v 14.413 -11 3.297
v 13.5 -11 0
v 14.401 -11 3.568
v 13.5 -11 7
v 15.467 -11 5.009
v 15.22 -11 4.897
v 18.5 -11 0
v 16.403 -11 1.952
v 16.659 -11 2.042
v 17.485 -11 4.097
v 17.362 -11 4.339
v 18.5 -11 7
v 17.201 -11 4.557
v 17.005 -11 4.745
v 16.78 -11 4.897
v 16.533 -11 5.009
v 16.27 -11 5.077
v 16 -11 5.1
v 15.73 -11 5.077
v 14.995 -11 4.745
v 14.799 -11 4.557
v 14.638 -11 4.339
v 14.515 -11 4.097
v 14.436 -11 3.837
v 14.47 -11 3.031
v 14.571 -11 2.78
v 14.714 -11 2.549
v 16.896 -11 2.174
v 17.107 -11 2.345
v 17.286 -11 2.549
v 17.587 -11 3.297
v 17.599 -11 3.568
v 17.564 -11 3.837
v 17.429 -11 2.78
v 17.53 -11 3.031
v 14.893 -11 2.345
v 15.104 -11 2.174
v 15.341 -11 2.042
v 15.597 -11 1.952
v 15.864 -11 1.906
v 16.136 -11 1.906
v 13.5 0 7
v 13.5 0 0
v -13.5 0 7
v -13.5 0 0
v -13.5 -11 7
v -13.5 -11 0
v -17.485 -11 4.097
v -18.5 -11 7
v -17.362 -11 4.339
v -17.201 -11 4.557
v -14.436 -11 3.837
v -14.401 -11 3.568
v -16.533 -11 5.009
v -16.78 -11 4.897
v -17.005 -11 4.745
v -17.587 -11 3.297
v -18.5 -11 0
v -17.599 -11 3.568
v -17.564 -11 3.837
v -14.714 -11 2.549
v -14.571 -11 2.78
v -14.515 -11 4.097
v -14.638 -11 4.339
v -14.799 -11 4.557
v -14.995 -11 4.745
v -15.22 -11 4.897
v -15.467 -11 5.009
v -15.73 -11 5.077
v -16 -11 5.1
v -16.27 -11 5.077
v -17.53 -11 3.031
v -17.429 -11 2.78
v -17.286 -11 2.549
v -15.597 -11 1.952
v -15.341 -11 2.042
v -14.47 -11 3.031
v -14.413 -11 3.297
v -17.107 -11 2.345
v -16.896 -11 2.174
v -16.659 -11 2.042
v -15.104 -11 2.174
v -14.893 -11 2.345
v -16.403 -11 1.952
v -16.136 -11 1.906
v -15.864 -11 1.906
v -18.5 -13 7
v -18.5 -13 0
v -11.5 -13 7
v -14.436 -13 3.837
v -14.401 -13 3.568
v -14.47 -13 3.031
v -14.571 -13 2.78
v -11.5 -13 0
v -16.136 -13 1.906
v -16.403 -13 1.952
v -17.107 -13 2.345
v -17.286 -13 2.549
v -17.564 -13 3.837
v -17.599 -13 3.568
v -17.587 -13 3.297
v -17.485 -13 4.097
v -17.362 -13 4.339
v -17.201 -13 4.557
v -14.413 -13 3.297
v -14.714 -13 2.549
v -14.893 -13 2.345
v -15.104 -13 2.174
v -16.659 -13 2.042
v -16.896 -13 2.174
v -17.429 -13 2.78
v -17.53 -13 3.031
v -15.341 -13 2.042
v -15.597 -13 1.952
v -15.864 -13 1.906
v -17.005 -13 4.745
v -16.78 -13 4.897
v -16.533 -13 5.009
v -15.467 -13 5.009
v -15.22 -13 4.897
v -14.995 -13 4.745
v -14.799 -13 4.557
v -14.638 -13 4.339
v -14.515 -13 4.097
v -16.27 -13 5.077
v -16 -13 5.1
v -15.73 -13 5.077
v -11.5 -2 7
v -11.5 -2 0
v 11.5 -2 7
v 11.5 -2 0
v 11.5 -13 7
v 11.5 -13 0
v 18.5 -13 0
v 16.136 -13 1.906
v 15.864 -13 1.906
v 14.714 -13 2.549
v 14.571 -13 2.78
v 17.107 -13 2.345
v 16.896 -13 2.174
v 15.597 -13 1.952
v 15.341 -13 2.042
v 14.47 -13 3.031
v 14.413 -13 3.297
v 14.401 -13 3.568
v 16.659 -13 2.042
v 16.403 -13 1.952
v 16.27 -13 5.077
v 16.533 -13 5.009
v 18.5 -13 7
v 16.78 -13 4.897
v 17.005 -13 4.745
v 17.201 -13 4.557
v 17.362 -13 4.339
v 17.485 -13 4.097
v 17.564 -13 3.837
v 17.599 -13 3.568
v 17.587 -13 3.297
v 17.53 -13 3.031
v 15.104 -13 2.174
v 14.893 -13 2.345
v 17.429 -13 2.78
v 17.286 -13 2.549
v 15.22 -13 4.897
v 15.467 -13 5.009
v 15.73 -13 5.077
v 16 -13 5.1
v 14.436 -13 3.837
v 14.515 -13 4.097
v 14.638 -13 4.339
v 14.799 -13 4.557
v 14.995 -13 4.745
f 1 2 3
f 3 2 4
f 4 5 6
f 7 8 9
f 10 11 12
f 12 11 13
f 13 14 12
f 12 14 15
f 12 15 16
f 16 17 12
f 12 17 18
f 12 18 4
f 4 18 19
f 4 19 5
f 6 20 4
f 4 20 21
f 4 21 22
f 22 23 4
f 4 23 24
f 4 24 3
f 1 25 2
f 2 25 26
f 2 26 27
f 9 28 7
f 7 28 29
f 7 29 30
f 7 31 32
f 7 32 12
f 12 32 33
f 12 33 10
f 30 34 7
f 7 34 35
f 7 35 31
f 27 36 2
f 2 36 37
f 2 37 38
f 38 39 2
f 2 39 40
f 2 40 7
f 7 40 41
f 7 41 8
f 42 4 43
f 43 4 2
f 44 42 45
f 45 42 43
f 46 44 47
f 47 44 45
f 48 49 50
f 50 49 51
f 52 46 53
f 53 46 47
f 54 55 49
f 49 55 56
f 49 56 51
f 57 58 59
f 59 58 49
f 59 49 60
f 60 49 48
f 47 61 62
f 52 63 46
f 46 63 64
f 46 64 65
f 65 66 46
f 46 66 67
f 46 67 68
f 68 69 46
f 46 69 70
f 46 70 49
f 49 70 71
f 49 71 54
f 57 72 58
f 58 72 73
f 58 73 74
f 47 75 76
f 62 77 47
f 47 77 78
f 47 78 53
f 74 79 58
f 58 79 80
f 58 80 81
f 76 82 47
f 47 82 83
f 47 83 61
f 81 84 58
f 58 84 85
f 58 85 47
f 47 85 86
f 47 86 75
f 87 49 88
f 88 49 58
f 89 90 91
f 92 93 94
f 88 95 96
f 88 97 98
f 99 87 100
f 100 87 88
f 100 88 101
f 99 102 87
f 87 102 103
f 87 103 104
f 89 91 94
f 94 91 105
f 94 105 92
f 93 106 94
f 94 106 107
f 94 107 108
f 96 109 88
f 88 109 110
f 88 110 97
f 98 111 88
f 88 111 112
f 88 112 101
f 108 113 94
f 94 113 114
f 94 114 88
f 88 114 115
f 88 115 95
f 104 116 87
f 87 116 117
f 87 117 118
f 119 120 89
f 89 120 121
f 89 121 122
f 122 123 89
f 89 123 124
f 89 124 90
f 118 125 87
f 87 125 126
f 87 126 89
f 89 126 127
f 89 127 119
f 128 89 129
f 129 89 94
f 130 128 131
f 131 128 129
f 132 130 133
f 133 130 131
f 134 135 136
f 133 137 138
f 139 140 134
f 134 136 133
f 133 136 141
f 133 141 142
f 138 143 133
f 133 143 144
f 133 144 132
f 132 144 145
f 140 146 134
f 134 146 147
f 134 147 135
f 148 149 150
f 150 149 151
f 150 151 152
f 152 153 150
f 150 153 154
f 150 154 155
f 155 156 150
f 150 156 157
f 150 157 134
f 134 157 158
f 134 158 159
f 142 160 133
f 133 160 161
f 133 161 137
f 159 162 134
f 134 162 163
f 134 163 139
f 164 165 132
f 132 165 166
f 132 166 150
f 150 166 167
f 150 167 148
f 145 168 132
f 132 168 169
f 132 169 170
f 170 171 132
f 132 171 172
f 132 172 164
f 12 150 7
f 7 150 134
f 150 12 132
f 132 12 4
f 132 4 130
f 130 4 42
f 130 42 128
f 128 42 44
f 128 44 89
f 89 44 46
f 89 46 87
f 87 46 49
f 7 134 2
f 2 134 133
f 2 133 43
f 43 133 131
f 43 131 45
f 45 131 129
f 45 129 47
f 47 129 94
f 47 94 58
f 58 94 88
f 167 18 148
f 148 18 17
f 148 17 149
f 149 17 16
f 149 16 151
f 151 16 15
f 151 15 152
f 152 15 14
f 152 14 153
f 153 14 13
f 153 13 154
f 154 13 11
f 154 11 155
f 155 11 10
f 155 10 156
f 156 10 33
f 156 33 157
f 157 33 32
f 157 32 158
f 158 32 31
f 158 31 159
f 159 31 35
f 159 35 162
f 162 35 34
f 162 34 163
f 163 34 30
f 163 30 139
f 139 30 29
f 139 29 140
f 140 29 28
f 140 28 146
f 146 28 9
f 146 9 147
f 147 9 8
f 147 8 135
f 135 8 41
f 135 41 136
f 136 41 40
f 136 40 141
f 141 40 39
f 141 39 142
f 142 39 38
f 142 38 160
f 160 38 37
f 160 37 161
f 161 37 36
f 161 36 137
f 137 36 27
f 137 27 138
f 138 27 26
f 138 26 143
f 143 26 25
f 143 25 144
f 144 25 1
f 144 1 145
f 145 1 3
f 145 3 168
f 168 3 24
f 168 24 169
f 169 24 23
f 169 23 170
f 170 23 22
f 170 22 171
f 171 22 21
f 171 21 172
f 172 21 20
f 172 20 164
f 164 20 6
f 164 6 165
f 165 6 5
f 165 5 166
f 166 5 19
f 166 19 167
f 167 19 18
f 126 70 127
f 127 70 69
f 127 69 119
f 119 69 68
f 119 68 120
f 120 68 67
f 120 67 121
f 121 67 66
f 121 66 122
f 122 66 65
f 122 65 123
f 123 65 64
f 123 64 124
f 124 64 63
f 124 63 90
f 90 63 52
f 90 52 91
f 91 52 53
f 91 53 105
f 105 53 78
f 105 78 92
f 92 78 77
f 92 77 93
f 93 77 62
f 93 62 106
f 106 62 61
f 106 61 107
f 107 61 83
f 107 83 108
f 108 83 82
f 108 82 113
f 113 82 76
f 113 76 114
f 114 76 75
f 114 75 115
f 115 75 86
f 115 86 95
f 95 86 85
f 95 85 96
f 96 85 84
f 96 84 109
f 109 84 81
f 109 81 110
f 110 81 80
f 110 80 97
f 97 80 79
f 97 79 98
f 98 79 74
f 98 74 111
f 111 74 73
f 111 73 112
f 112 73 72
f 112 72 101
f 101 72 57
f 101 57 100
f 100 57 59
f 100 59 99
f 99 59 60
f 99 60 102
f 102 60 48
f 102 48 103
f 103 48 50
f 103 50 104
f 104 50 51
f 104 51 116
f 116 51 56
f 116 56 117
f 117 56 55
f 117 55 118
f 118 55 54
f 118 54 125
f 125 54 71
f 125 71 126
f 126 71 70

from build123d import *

# Parameters (mm, degrees)
EXTRUDE_1_DEPTH     = 7
SKETCH_2_R          = 1.6
CUT_EXTRUDE_1_DEPTH = 2


with BuildPart() as part:
    # 草圖1 → 填料-伸長1 (new body)
    with BuildSketch(Plane.XY):
        Polygon((-13.5, 0), (13.5, 0), (13.5, -11), (18.5, -11), (18.5, -13), (11.5, -13), (11.5, -2), (-11.5, -2), (-11.5, -13), (-18.5, -13), (-18.5, -11), (-13.5, -11), align=None)
    extrude(amount=EXTRUDE_1_DEPTH)

    # 草圖2 → 除料-伸長1 (cut)
    with BuildSketch(Plane(origin=(0, -11, 0), x_dir=(1, 0, 0), z_dir=(0, 1, 0))):
        with Locations(Location((16, -3.5, 0), (0, 0, 270))):
            Circle(SKETCH_2_R)
        with Locations(Location((-16, -3.5, 0), (0, 0, 270))):
            Circle(SKETCH_2_R)
    extrude(amount=-CUT_EXTRUDE_1_DEPTH, mode=Mode.SUBTRACT)


solid = part.part
